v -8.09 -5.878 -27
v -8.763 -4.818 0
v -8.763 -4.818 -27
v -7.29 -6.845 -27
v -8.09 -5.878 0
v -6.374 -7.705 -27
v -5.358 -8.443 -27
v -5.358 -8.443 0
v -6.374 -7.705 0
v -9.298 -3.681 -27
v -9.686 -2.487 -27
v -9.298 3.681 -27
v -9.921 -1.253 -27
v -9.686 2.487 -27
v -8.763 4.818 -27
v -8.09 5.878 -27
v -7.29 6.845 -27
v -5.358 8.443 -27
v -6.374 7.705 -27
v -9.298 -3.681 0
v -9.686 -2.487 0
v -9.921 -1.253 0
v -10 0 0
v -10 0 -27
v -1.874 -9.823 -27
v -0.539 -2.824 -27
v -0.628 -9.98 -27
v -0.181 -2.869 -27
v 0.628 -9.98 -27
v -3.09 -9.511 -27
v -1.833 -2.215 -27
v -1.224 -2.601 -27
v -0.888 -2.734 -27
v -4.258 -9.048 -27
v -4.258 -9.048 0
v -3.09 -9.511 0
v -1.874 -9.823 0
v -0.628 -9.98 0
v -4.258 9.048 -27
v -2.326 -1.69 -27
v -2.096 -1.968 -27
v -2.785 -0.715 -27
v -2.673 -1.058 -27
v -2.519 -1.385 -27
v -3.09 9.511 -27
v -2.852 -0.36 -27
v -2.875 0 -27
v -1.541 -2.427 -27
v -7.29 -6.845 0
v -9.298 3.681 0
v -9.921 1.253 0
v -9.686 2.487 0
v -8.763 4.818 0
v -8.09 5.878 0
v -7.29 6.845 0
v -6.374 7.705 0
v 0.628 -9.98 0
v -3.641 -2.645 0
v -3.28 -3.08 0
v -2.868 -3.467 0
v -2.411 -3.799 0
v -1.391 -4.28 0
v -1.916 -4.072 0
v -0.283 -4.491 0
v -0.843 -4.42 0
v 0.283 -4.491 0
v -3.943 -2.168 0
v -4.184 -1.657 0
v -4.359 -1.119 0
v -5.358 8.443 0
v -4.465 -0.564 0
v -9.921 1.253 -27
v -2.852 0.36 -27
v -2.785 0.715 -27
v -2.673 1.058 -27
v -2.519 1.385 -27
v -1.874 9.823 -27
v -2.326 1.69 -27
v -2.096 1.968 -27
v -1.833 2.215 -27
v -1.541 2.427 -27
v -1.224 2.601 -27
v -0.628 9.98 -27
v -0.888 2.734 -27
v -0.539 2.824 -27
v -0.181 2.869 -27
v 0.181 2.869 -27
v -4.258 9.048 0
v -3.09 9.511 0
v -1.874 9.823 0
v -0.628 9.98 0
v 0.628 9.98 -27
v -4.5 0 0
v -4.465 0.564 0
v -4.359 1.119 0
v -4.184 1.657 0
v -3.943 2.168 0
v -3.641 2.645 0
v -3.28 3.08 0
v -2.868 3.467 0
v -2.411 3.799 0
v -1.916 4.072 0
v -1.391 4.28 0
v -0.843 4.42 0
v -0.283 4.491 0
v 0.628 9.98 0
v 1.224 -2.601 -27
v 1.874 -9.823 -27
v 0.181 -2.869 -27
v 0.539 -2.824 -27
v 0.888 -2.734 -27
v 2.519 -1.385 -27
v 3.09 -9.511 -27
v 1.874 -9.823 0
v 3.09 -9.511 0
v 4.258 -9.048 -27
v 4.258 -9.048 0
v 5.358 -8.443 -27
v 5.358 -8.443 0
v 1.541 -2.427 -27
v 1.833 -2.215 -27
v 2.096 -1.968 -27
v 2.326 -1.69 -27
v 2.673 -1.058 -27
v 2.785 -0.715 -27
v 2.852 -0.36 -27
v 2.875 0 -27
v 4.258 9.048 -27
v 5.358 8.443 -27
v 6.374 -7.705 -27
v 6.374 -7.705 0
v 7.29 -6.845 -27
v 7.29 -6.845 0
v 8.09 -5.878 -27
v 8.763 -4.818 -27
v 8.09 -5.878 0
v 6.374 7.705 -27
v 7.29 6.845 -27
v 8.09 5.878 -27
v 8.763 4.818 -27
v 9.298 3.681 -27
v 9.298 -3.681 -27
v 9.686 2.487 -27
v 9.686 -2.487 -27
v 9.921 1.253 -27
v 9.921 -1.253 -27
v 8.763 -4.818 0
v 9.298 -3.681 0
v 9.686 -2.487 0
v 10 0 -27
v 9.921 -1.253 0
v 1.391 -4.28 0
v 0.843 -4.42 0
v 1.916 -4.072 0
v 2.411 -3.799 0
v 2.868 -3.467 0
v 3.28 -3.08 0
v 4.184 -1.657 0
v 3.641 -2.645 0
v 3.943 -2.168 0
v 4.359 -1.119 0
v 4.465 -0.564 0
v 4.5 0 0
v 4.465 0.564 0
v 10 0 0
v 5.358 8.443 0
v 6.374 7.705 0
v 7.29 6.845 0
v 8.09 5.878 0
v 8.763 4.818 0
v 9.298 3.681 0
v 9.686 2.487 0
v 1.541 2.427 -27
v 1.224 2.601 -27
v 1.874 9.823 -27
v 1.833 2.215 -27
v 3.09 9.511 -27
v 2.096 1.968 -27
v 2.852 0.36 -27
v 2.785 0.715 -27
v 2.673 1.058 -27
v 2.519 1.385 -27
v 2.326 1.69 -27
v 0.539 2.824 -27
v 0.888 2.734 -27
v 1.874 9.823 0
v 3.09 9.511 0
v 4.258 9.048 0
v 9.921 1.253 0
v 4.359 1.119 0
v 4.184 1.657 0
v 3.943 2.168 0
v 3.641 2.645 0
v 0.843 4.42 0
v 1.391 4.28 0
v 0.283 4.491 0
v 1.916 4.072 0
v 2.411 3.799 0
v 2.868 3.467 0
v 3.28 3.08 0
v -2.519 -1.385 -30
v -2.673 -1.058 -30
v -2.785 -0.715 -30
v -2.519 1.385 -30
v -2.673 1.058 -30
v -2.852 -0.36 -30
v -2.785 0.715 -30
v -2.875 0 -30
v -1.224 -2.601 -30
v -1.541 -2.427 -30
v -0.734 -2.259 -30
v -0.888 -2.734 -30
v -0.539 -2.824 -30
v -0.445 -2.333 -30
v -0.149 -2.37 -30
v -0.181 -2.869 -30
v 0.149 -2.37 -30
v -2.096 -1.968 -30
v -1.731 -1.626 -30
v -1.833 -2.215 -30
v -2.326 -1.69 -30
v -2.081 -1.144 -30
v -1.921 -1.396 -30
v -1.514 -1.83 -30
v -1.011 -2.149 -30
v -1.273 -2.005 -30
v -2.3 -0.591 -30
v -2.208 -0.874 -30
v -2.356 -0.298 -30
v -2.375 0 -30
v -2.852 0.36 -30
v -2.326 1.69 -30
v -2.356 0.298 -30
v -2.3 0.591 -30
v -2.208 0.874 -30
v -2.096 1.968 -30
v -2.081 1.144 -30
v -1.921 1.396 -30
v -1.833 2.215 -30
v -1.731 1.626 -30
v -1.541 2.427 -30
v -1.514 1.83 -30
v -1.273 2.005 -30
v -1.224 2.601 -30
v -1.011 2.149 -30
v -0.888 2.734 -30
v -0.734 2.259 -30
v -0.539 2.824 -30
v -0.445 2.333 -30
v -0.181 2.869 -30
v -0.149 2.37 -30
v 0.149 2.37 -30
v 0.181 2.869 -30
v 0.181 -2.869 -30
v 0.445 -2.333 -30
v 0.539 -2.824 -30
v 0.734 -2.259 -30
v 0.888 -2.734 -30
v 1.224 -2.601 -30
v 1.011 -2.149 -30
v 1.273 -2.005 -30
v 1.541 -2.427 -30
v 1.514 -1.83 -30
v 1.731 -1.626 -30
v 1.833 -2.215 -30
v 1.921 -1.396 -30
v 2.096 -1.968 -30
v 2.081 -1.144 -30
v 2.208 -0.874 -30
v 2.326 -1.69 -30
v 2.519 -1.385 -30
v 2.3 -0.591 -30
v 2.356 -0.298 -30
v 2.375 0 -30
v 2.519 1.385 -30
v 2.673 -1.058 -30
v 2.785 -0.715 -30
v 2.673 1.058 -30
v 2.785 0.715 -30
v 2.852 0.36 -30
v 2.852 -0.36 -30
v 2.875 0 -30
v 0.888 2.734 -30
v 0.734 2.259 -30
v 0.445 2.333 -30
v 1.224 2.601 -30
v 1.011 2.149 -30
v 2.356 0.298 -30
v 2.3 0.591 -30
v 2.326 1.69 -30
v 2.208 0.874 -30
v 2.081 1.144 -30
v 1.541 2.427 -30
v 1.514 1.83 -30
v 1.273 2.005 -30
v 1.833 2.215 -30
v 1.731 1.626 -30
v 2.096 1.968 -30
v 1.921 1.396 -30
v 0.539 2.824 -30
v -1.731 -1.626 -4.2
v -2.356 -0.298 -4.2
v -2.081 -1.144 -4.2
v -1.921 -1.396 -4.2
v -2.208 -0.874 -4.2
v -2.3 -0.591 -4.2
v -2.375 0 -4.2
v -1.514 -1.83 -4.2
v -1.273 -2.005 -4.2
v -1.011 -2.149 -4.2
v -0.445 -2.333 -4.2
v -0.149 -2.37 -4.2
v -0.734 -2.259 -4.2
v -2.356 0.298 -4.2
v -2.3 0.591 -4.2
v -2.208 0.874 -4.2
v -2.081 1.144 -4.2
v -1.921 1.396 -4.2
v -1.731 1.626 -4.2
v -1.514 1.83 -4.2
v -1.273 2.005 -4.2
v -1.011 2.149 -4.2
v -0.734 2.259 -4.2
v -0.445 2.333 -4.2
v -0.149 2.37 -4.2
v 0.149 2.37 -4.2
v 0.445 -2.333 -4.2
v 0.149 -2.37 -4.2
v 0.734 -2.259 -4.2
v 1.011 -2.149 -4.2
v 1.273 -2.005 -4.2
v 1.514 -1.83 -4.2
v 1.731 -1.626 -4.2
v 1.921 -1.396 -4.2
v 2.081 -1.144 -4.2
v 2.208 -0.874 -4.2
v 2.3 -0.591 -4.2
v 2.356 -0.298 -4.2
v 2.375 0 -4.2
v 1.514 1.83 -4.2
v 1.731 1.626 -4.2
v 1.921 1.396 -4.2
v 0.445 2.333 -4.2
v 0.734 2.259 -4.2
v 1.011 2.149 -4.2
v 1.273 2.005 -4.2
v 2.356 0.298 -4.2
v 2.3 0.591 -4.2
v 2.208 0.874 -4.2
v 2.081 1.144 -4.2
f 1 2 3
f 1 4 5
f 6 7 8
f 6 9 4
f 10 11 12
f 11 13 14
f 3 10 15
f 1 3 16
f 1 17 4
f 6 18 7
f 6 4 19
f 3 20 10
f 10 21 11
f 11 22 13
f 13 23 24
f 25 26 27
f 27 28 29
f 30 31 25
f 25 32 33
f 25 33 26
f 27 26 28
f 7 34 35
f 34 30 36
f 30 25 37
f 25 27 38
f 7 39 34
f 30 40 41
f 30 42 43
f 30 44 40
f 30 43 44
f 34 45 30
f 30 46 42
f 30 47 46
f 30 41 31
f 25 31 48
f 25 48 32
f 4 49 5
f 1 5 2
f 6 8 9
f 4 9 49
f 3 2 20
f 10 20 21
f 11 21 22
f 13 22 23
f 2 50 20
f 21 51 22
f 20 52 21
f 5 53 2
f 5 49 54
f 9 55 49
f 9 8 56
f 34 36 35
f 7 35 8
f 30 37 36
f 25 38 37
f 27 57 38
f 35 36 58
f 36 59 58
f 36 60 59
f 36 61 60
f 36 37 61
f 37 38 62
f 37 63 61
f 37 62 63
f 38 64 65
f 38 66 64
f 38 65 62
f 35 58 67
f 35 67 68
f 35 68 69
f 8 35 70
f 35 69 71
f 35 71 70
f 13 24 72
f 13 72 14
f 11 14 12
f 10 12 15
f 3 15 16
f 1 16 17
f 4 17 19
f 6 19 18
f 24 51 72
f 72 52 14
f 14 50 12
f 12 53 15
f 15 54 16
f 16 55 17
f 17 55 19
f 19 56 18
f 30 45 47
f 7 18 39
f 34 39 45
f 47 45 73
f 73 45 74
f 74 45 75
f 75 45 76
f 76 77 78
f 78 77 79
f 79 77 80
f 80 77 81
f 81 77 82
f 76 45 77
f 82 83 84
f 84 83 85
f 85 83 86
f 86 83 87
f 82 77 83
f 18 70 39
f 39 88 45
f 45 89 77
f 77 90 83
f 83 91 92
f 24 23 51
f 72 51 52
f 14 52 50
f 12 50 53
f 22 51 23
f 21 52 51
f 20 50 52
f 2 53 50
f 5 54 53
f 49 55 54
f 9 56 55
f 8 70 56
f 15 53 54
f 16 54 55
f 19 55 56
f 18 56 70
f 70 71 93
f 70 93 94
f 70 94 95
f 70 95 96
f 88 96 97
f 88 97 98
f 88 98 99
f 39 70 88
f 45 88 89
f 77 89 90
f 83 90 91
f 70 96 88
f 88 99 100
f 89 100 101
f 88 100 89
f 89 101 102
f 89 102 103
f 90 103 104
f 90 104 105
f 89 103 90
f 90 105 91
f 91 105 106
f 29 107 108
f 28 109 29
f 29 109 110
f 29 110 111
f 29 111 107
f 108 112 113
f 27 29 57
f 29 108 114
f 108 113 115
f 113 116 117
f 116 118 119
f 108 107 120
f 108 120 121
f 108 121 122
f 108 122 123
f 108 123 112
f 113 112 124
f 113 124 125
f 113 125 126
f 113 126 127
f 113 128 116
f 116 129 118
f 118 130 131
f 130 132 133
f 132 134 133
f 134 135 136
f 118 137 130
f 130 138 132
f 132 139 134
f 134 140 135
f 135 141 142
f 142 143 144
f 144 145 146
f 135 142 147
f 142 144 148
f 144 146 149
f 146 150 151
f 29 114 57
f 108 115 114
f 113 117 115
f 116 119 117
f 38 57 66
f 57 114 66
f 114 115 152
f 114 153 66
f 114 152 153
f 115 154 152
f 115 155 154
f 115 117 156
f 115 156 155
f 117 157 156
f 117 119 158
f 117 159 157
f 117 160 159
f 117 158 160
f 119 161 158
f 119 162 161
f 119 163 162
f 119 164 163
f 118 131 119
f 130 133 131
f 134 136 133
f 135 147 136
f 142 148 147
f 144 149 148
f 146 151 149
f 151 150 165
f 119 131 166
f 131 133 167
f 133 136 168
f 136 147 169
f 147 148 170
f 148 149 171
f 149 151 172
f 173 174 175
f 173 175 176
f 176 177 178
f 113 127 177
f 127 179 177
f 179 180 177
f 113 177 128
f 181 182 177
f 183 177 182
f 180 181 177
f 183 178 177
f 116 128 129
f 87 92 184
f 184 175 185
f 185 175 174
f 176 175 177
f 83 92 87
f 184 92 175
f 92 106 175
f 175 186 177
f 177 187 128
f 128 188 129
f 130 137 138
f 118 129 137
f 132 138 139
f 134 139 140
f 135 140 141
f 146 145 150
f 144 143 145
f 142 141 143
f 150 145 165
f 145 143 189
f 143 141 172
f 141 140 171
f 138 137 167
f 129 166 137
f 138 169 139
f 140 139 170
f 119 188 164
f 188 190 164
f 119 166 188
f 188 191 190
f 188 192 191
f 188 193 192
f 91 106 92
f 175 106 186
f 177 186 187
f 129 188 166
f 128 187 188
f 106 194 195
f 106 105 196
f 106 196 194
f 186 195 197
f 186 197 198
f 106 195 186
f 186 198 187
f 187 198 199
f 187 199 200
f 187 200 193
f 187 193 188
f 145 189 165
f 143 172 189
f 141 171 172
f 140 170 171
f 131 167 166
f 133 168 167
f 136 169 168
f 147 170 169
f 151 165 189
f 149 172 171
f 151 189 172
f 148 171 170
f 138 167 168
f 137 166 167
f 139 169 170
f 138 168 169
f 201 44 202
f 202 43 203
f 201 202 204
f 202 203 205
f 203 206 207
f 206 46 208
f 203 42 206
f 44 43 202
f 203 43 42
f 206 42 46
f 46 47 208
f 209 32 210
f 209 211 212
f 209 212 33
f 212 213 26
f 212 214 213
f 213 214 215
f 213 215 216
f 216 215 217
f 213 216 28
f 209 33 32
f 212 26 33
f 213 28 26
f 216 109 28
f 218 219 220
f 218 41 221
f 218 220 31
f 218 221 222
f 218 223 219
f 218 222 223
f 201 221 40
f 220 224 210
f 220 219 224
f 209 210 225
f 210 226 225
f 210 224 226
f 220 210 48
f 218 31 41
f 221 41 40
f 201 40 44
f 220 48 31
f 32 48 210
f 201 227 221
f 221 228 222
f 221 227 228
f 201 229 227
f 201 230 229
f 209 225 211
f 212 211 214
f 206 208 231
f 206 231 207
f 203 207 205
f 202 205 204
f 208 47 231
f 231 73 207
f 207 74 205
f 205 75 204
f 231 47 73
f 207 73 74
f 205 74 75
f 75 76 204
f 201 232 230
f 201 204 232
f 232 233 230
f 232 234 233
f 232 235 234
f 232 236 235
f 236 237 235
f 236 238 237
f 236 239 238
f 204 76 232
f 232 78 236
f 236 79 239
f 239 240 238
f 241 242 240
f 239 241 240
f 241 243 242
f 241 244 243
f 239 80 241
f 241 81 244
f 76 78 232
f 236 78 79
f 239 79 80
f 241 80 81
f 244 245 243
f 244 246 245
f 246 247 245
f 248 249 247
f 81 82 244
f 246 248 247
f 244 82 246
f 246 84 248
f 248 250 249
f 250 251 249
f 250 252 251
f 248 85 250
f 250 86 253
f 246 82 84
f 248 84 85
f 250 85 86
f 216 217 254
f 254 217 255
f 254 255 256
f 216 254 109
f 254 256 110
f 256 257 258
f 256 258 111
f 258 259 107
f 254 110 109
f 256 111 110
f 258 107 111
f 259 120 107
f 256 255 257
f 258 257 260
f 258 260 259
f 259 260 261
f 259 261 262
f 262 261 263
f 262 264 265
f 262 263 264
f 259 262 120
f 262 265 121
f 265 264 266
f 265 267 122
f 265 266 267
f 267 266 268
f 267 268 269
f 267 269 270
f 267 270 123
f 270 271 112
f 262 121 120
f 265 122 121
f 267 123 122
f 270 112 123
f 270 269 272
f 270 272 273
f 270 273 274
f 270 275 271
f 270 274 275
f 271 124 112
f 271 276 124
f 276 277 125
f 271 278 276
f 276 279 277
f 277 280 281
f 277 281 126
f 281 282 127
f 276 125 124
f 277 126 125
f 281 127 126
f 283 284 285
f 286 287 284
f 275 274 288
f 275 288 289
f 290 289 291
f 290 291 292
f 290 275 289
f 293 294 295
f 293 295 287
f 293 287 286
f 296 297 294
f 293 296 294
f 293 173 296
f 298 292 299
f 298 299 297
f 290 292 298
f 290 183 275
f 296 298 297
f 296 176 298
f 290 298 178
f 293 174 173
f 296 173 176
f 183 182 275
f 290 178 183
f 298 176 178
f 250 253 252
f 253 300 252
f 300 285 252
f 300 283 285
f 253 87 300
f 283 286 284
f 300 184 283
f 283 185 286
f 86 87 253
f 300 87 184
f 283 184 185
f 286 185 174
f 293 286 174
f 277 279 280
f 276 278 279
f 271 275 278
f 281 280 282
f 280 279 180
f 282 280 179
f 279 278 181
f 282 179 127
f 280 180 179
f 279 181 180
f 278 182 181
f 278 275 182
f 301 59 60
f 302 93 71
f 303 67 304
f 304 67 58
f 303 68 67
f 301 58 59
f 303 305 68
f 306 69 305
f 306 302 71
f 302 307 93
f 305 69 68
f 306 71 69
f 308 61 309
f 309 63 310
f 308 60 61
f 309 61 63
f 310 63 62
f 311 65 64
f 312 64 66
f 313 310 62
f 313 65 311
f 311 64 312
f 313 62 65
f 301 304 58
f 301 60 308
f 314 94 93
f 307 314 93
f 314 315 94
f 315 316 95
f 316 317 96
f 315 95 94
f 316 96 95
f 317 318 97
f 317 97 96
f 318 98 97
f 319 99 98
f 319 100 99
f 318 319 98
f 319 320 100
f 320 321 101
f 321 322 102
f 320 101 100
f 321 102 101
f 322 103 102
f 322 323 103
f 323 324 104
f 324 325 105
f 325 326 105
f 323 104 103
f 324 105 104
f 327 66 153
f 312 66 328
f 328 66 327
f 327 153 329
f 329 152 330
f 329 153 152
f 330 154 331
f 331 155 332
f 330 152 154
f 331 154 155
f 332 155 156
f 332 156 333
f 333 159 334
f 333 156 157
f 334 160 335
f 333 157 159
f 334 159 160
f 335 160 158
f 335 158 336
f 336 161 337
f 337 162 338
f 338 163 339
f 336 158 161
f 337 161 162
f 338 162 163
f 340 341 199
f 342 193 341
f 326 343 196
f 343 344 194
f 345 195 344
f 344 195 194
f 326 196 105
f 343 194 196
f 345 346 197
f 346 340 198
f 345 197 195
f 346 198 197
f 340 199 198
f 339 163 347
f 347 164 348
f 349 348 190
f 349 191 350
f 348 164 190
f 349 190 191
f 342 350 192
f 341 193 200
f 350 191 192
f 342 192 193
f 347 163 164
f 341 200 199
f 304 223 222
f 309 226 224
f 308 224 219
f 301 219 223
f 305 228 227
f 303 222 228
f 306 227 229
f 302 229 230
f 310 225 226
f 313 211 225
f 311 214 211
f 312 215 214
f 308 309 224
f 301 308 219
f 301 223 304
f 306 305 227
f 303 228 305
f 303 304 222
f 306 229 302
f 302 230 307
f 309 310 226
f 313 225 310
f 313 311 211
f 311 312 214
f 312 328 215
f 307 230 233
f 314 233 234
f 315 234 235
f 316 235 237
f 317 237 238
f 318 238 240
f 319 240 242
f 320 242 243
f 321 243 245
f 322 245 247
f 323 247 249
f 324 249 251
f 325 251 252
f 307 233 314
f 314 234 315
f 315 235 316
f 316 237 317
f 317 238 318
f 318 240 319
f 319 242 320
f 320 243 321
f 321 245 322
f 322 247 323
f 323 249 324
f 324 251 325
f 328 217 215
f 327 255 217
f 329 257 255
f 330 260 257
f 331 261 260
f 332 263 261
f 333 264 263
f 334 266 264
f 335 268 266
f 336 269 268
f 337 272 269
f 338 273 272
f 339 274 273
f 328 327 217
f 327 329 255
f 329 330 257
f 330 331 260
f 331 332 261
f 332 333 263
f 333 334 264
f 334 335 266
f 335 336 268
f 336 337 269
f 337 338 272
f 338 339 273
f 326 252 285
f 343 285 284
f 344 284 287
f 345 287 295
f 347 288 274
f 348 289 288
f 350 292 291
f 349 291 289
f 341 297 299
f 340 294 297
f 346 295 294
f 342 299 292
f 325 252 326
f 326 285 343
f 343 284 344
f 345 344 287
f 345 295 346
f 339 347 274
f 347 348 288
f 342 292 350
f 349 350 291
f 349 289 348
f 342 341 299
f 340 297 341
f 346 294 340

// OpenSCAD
$fn = 50;

difference() {
	union() {
		translate(v = [0, 0, -27.0]) {
			cylinder(h = 27, r = 10.0);
		}
		#translate(v = [0, 0, -30.0]) {
			cylinder(h = 30, r = 2.875);
		}
	}
	union() {
		translate(v = [0, 0, 0]) {
			rotate(a = [0, 0, 0]) {
				difference() {
					union() {
						translate(v = [0, 0, -30.0]) {
							cylinder(h = 30, r = 2.25);
						}
						translate(v = [0, 0, -4.2]) {
							cylinder(h = 4.2, r1 = 2.375, r2 = 4.5);
						}
						translate(v = [0, 0, -30.0]) {
							cylinder(h = 30, r = 2.375);
						}
						translate(v = [0, 0, -30.0]) {
							cylinder(h = 30, r = 2.25);
						}
					}
					union();
				}
			}
		}
	}
}
